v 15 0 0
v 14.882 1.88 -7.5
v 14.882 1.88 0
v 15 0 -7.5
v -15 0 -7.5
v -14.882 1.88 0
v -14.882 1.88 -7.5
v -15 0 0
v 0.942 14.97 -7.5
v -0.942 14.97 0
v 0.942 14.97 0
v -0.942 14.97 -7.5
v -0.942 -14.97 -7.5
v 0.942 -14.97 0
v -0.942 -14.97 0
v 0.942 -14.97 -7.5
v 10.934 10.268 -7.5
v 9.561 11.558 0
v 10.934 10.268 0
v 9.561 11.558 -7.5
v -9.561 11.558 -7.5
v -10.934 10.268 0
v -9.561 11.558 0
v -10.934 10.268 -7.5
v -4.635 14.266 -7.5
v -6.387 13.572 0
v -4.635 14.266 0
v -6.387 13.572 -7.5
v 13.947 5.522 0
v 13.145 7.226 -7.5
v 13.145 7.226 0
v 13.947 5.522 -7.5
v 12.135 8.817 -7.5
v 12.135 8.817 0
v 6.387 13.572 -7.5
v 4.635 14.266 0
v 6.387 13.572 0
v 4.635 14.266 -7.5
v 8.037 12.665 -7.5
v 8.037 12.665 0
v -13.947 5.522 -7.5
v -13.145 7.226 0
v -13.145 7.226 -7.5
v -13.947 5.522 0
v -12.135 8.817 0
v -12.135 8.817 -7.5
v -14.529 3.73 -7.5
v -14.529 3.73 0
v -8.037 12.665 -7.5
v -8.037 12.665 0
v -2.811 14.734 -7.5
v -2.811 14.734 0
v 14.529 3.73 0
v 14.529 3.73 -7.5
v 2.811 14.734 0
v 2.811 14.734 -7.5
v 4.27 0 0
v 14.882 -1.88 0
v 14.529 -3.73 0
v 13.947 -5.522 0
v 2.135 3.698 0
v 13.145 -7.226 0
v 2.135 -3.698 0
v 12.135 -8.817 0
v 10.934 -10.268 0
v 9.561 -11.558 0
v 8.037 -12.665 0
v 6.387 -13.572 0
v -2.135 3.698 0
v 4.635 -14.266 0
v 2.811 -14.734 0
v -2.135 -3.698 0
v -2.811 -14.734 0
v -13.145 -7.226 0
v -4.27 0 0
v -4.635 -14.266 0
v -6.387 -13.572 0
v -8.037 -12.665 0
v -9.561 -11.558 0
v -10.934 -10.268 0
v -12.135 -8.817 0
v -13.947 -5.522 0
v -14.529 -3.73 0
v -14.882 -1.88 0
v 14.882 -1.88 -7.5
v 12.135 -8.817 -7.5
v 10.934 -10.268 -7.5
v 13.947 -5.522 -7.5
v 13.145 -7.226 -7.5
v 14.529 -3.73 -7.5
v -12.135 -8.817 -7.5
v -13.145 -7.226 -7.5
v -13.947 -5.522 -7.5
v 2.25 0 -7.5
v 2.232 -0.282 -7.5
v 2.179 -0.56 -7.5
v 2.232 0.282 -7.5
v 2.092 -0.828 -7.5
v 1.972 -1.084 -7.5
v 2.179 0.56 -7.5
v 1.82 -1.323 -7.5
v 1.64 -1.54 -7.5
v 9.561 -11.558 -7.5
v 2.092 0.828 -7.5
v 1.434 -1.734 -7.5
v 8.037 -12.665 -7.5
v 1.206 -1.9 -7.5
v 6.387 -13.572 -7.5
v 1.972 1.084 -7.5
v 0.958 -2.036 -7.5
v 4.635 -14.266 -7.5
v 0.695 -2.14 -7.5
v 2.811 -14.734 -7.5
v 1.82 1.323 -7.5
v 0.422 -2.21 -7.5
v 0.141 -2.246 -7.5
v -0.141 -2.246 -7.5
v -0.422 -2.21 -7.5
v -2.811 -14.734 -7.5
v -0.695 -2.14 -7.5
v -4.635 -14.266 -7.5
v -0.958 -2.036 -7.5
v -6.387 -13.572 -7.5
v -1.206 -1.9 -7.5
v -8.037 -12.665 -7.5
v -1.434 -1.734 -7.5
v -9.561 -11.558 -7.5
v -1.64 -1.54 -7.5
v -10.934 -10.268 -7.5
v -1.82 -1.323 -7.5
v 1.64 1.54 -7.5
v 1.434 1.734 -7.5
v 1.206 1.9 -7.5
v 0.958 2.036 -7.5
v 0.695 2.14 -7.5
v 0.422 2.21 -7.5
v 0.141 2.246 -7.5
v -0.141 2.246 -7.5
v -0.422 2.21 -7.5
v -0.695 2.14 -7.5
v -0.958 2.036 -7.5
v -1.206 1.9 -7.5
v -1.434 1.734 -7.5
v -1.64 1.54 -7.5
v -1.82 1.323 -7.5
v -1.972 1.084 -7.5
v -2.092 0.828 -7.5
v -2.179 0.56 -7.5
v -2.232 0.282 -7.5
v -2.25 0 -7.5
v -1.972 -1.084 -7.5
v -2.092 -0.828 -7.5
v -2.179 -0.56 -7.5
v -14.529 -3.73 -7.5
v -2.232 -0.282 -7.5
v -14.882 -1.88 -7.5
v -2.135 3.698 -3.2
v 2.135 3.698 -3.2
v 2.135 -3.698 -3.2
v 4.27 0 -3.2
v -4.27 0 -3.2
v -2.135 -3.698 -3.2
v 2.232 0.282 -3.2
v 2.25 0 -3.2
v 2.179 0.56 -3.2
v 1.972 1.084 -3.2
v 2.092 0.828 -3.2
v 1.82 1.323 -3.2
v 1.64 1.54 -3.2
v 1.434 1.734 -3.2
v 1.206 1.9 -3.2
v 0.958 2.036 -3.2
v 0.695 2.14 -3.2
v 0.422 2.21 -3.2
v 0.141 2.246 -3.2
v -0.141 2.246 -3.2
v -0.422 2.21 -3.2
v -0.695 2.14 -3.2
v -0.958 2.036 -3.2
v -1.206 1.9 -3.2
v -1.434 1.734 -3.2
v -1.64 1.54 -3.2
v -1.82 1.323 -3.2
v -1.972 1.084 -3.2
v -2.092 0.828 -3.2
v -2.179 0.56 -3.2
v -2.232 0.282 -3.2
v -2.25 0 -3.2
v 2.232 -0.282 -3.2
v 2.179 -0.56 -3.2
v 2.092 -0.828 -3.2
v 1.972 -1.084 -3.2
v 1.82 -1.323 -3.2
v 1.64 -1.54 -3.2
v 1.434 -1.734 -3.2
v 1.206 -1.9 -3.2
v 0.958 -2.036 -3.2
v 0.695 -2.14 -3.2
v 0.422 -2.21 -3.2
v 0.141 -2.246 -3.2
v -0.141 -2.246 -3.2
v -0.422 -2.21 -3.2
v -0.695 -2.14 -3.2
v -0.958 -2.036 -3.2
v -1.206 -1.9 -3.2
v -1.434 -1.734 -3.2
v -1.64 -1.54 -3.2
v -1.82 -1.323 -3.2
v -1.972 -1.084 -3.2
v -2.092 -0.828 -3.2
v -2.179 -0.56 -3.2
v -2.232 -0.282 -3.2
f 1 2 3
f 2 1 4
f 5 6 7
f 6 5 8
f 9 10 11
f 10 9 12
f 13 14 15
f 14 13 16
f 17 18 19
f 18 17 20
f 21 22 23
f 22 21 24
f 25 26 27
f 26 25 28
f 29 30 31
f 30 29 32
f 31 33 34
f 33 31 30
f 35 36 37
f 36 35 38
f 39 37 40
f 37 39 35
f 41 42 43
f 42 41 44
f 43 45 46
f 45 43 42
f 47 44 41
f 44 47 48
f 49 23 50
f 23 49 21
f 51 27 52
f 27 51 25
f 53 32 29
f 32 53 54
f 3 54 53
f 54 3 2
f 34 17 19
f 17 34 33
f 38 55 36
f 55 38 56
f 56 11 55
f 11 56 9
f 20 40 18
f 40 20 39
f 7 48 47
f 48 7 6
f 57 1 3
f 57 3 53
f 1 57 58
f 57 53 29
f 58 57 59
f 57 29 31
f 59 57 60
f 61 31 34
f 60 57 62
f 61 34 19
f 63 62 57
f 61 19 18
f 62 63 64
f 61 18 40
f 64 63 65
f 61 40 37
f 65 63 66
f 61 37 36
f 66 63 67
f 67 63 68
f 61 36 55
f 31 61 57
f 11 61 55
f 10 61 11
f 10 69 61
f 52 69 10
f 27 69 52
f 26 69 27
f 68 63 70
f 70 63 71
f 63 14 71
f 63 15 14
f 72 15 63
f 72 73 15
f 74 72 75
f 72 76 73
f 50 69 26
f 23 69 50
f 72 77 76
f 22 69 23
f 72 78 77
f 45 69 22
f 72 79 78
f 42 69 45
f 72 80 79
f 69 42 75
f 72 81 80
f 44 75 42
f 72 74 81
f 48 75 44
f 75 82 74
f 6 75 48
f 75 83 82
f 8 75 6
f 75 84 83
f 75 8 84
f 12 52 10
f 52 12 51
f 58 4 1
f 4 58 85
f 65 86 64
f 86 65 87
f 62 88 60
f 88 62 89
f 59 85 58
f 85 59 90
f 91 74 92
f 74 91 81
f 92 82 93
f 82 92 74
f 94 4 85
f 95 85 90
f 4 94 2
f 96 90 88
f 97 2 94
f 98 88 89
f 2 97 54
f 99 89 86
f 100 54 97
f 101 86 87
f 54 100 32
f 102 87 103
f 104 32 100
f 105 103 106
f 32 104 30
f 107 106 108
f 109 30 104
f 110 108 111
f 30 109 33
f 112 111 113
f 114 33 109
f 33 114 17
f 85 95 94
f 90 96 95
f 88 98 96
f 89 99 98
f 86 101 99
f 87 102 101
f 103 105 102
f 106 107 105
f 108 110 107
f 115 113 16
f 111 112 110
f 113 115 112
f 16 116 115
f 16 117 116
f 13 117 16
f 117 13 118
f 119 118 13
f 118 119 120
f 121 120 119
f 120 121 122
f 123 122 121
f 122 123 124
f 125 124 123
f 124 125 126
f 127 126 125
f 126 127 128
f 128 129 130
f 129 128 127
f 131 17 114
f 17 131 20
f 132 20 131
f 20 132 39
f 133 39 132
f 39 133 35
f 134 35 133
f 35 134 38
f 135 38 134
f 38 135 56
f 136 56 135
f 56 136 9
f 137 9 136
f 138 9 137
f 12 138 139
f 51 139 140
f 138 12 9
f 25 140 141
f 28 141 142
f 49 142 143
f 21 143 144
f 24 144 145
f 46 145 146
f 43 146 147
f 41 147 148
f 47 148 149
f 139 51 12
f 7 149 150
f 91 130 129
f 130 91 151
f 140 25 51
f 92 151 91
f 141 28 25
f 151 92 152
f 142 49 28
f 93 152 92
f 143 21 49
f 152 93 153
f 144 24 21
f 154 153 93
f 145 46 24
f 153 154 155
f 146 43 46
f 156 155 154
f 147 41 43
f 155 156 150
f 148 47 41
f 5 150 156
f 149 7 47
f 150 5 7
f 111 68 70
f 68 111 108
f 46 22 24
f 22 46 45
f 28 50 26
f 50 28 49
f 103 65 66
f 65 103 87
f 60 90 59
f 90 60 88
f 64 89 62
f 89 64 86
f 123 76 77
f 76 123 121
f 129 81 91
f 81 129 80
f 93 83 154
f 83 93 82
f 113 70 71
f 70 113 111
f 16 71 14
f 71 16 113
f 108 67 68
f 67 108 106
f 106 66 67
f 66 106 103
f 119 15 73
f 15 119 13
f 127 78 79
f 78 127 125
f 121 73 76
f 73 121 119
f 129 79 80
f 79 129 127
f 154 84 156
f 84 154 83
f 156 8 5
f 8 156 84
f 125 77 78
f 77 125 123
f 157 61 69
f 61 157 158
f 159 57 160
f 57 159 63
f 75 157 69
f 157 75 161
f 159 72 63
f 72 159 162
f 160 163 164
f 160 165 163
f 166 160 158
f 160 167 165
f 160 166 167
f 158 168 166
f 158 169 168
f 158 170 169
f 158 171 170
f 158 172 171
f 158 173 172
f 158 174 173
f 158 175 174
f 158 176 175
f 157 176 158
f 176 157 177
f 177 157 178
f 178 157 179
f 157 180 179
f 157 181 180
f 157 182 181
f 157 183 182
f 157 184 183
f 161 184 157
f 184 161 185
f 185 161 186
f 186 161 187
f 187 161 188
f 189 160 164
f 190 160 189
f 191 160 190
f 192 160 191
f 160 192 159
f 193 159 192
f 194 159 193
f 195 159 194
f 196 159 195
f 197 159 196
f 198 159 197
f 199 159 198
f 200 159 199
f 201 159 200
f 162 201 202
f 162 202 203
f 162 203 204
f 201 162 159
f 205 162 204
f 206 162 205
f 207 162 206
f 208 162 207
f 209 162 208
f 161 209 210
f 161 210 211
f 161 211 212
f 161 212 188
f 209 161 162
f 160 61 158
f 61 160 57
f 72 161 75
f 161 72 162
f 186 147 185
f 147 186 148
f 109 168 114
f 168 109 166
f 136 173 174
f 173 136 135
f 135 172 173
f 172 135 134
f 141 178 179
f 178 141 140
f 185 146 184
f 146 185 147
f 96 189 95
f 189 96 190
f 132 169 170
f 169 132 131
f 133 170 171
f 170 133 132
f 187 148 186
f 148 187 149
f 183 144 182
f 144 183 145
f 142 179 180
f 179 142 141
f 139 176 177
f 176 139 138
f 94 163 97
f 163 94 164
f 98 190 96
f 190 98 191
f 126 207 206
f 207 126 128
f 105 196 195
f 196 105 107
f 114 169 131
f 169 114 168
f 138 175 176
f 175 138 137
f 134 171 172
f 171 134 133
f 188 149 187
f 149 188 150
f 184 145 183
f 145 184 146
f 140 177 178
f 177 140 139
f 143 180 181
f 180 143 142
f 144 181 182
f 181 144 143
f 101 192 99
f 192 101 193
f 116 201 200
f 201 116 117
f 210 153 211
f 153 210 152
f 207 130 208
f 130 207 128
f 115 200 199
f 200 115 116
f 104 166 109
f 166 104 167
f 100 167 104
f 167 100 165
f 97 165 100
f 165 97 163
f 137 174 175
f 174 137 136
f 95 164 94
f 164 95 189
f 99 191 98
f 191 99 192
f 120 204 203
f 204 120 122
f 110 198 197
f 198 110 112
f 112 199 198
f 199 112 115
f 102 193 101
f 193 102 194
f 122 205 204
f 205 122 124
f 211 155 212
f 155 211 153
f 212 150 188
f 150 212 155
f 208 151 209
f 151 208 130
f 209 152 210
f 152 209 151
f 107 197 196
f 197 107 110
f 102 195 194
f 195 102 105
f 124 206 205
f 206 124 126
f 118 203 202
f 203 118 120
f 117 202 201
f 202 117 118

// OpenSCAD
$fn = 50;


difference() {
	union() {
		translate(v = [0, 0, -7.5000000000]) {
			cylinder(h = 7.5000000000, r = 15.0000000000);
		}
		translate(v = [0, 0, -6.0000000000]) {
			cylinder(h = 6, r = 2.8750000000);
		}
	}
	union() {
		translate(v = [0, 0, 0]) {
			rotate(a = [0, 0, 0]) {
				difference() {
					union() {
						translate(v = [0, 0, -3.2000000000]) {
							linear_extrude(height = 3.2000000000) {
								polygon(points = [[4.2698000000, 0.0000000000], [2.1349000000, 3.6977552691], [-2.1349000000, 3.6977552691], [-4.2698000000, 0.0000000000], [-2.1349000000, -3.6977552691], [2.1349000000, -3.6977552691]]);
							}
						}
					}
					union();
				}
			}
		}
		#translate(v = [0, 0, -100.0000000000]) {
			cylinder(h = 200, r = 2.2500000000);
		}
	}
}
